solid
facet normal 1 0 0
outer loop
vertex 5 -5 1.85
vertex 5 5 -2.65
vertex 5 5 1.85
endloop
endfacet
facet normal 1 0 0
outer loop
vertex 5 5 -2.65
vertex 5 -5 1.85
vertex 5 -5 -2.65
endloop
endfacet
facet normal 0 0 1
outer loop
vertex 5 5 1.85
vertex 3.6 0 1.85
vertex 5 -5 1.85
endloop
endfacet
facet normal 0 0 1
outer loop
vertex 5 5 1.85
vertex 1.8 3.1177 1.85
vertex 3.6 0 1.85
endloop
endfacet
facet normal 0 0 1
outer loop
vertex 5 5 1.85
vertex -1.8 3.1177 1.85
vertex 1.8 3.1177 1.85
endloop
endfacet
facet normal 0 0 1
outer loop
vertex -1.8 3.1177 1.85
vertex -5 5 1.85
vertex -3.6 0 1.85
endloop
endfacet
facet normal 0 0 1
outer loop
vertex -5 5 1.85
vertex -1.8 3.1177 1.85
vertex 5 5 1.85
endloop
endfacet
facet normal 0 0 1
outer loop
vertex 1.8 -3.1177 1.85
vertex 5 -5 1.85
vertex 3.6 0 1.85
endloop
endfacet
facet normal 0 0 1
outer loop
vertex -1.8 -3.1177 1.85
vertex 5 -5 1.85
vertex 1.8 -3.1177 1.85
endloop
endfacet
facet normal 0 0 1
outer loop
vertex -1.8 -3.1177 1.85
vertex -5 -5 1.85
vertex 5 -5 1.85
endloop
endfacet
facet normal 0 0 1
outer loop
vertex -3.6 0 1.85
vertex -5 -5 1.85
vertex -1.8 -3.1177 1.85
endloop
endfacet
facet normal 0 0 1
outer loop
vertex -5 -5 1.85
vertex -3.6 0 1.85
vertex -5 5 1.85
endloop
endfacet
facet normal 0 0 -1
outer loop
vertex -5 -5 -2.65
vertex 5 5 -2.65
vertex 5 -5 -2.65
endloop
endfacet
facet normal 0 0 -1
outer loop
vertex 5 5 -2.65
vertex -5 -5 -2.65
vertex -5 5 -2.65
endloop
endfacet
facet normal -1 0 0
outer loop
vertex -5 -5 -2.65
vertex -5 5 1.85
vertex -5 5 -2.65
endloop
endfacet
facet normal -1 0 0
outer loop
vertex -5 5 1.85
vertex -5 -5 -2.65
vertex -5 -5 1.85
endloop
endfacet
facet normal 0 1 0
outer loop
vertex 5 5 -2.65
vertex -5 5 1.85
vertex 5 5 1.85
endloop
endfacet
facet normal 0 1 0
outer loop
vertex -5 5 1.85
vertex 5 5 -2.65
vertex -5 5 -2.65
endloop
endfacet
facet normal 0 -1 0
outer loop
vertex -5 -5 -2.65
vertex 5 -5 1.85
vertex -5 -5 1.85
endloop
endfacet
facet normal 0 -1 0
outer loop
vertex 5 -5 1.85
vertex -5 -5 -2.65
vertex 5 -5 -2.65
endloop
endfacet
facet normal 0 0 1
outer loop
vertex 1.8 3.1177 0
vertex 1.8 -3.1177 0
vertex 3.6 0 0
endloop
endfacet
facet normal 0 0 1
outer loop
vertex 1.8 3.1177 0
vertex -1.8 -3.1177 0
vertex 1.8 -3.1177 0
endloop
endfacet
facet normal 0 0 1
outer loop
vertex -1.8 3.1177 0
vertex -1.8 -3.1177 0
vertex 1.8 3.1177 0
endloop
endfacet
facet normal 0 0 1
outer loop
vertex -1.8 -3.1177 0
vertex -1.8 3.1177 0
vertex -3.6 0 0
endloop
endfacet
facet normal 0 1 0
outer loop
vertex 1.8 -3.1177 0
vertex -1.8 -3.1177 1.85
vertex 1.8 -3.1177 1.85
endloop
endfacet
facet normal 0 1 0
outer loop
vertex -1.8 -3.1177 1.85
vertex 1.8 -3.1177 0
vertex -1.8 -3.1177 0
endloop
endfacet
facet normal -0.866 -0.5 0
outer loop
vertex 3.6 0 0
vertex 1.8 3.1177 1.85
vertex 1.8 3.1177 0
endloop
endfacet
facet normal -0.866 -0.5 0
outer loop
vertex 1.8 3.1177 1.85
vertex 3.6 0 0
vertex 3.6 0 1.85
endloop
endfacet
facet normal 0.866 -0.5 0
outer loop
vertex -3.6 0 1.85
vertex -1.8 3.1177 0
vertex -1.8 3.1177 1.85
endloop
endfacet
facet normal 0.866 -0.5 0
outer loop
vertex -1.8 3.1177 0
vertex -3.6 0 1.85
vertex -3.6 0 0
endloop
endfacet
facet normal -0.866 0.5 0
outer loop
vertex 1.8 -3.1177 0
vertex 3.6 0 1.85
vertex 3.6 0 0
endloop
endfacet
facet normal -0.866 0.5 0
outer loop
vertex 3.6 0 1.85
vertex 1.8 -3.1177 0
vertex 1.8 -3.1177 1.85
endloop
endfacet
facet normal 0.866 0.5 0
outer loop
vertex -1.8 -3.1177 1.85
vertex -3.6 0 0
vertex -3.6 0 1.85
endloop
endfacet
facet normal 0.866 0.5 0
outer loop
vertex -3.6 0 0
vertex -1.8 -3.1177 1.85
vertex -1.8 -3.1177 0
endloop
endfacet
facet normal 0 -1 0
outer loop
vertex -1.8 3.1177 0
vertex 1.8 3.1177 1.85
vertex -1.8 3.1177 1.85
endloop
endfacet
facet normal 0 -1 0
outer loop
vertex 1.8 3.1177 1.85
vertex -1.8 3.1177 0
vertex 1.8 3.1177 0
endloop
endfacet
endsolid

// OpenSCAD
// file: hex_nut.scad
// 1.5^2 + y^2 = 3^2
// sqrt(3^2 - 1.5^2)
//       30
//    /   |
// 60  - 90
// cos(30) = x / 3
// x = 3 cos(30)
module hex(side_length=4) {
  points = [[0,0], [side_length, 0], [side_length / 2, side_length * cos(30)]];
  for (i=[0:1:5]) {
    rotate([0,0,i * 60]) polygon(points);
  }
}

module hex_nut(side_length=3, height=2) {
    linear_extrude(height=height) hex(side_length);

}
// main file
use <hex_nut.scad>


difference() {
  translate([0,0,-0.4]) {
    cube([10,10,4.5], center=true);
  }
  color([1,0,0]) hex_nut(side_length=3.6);
}
